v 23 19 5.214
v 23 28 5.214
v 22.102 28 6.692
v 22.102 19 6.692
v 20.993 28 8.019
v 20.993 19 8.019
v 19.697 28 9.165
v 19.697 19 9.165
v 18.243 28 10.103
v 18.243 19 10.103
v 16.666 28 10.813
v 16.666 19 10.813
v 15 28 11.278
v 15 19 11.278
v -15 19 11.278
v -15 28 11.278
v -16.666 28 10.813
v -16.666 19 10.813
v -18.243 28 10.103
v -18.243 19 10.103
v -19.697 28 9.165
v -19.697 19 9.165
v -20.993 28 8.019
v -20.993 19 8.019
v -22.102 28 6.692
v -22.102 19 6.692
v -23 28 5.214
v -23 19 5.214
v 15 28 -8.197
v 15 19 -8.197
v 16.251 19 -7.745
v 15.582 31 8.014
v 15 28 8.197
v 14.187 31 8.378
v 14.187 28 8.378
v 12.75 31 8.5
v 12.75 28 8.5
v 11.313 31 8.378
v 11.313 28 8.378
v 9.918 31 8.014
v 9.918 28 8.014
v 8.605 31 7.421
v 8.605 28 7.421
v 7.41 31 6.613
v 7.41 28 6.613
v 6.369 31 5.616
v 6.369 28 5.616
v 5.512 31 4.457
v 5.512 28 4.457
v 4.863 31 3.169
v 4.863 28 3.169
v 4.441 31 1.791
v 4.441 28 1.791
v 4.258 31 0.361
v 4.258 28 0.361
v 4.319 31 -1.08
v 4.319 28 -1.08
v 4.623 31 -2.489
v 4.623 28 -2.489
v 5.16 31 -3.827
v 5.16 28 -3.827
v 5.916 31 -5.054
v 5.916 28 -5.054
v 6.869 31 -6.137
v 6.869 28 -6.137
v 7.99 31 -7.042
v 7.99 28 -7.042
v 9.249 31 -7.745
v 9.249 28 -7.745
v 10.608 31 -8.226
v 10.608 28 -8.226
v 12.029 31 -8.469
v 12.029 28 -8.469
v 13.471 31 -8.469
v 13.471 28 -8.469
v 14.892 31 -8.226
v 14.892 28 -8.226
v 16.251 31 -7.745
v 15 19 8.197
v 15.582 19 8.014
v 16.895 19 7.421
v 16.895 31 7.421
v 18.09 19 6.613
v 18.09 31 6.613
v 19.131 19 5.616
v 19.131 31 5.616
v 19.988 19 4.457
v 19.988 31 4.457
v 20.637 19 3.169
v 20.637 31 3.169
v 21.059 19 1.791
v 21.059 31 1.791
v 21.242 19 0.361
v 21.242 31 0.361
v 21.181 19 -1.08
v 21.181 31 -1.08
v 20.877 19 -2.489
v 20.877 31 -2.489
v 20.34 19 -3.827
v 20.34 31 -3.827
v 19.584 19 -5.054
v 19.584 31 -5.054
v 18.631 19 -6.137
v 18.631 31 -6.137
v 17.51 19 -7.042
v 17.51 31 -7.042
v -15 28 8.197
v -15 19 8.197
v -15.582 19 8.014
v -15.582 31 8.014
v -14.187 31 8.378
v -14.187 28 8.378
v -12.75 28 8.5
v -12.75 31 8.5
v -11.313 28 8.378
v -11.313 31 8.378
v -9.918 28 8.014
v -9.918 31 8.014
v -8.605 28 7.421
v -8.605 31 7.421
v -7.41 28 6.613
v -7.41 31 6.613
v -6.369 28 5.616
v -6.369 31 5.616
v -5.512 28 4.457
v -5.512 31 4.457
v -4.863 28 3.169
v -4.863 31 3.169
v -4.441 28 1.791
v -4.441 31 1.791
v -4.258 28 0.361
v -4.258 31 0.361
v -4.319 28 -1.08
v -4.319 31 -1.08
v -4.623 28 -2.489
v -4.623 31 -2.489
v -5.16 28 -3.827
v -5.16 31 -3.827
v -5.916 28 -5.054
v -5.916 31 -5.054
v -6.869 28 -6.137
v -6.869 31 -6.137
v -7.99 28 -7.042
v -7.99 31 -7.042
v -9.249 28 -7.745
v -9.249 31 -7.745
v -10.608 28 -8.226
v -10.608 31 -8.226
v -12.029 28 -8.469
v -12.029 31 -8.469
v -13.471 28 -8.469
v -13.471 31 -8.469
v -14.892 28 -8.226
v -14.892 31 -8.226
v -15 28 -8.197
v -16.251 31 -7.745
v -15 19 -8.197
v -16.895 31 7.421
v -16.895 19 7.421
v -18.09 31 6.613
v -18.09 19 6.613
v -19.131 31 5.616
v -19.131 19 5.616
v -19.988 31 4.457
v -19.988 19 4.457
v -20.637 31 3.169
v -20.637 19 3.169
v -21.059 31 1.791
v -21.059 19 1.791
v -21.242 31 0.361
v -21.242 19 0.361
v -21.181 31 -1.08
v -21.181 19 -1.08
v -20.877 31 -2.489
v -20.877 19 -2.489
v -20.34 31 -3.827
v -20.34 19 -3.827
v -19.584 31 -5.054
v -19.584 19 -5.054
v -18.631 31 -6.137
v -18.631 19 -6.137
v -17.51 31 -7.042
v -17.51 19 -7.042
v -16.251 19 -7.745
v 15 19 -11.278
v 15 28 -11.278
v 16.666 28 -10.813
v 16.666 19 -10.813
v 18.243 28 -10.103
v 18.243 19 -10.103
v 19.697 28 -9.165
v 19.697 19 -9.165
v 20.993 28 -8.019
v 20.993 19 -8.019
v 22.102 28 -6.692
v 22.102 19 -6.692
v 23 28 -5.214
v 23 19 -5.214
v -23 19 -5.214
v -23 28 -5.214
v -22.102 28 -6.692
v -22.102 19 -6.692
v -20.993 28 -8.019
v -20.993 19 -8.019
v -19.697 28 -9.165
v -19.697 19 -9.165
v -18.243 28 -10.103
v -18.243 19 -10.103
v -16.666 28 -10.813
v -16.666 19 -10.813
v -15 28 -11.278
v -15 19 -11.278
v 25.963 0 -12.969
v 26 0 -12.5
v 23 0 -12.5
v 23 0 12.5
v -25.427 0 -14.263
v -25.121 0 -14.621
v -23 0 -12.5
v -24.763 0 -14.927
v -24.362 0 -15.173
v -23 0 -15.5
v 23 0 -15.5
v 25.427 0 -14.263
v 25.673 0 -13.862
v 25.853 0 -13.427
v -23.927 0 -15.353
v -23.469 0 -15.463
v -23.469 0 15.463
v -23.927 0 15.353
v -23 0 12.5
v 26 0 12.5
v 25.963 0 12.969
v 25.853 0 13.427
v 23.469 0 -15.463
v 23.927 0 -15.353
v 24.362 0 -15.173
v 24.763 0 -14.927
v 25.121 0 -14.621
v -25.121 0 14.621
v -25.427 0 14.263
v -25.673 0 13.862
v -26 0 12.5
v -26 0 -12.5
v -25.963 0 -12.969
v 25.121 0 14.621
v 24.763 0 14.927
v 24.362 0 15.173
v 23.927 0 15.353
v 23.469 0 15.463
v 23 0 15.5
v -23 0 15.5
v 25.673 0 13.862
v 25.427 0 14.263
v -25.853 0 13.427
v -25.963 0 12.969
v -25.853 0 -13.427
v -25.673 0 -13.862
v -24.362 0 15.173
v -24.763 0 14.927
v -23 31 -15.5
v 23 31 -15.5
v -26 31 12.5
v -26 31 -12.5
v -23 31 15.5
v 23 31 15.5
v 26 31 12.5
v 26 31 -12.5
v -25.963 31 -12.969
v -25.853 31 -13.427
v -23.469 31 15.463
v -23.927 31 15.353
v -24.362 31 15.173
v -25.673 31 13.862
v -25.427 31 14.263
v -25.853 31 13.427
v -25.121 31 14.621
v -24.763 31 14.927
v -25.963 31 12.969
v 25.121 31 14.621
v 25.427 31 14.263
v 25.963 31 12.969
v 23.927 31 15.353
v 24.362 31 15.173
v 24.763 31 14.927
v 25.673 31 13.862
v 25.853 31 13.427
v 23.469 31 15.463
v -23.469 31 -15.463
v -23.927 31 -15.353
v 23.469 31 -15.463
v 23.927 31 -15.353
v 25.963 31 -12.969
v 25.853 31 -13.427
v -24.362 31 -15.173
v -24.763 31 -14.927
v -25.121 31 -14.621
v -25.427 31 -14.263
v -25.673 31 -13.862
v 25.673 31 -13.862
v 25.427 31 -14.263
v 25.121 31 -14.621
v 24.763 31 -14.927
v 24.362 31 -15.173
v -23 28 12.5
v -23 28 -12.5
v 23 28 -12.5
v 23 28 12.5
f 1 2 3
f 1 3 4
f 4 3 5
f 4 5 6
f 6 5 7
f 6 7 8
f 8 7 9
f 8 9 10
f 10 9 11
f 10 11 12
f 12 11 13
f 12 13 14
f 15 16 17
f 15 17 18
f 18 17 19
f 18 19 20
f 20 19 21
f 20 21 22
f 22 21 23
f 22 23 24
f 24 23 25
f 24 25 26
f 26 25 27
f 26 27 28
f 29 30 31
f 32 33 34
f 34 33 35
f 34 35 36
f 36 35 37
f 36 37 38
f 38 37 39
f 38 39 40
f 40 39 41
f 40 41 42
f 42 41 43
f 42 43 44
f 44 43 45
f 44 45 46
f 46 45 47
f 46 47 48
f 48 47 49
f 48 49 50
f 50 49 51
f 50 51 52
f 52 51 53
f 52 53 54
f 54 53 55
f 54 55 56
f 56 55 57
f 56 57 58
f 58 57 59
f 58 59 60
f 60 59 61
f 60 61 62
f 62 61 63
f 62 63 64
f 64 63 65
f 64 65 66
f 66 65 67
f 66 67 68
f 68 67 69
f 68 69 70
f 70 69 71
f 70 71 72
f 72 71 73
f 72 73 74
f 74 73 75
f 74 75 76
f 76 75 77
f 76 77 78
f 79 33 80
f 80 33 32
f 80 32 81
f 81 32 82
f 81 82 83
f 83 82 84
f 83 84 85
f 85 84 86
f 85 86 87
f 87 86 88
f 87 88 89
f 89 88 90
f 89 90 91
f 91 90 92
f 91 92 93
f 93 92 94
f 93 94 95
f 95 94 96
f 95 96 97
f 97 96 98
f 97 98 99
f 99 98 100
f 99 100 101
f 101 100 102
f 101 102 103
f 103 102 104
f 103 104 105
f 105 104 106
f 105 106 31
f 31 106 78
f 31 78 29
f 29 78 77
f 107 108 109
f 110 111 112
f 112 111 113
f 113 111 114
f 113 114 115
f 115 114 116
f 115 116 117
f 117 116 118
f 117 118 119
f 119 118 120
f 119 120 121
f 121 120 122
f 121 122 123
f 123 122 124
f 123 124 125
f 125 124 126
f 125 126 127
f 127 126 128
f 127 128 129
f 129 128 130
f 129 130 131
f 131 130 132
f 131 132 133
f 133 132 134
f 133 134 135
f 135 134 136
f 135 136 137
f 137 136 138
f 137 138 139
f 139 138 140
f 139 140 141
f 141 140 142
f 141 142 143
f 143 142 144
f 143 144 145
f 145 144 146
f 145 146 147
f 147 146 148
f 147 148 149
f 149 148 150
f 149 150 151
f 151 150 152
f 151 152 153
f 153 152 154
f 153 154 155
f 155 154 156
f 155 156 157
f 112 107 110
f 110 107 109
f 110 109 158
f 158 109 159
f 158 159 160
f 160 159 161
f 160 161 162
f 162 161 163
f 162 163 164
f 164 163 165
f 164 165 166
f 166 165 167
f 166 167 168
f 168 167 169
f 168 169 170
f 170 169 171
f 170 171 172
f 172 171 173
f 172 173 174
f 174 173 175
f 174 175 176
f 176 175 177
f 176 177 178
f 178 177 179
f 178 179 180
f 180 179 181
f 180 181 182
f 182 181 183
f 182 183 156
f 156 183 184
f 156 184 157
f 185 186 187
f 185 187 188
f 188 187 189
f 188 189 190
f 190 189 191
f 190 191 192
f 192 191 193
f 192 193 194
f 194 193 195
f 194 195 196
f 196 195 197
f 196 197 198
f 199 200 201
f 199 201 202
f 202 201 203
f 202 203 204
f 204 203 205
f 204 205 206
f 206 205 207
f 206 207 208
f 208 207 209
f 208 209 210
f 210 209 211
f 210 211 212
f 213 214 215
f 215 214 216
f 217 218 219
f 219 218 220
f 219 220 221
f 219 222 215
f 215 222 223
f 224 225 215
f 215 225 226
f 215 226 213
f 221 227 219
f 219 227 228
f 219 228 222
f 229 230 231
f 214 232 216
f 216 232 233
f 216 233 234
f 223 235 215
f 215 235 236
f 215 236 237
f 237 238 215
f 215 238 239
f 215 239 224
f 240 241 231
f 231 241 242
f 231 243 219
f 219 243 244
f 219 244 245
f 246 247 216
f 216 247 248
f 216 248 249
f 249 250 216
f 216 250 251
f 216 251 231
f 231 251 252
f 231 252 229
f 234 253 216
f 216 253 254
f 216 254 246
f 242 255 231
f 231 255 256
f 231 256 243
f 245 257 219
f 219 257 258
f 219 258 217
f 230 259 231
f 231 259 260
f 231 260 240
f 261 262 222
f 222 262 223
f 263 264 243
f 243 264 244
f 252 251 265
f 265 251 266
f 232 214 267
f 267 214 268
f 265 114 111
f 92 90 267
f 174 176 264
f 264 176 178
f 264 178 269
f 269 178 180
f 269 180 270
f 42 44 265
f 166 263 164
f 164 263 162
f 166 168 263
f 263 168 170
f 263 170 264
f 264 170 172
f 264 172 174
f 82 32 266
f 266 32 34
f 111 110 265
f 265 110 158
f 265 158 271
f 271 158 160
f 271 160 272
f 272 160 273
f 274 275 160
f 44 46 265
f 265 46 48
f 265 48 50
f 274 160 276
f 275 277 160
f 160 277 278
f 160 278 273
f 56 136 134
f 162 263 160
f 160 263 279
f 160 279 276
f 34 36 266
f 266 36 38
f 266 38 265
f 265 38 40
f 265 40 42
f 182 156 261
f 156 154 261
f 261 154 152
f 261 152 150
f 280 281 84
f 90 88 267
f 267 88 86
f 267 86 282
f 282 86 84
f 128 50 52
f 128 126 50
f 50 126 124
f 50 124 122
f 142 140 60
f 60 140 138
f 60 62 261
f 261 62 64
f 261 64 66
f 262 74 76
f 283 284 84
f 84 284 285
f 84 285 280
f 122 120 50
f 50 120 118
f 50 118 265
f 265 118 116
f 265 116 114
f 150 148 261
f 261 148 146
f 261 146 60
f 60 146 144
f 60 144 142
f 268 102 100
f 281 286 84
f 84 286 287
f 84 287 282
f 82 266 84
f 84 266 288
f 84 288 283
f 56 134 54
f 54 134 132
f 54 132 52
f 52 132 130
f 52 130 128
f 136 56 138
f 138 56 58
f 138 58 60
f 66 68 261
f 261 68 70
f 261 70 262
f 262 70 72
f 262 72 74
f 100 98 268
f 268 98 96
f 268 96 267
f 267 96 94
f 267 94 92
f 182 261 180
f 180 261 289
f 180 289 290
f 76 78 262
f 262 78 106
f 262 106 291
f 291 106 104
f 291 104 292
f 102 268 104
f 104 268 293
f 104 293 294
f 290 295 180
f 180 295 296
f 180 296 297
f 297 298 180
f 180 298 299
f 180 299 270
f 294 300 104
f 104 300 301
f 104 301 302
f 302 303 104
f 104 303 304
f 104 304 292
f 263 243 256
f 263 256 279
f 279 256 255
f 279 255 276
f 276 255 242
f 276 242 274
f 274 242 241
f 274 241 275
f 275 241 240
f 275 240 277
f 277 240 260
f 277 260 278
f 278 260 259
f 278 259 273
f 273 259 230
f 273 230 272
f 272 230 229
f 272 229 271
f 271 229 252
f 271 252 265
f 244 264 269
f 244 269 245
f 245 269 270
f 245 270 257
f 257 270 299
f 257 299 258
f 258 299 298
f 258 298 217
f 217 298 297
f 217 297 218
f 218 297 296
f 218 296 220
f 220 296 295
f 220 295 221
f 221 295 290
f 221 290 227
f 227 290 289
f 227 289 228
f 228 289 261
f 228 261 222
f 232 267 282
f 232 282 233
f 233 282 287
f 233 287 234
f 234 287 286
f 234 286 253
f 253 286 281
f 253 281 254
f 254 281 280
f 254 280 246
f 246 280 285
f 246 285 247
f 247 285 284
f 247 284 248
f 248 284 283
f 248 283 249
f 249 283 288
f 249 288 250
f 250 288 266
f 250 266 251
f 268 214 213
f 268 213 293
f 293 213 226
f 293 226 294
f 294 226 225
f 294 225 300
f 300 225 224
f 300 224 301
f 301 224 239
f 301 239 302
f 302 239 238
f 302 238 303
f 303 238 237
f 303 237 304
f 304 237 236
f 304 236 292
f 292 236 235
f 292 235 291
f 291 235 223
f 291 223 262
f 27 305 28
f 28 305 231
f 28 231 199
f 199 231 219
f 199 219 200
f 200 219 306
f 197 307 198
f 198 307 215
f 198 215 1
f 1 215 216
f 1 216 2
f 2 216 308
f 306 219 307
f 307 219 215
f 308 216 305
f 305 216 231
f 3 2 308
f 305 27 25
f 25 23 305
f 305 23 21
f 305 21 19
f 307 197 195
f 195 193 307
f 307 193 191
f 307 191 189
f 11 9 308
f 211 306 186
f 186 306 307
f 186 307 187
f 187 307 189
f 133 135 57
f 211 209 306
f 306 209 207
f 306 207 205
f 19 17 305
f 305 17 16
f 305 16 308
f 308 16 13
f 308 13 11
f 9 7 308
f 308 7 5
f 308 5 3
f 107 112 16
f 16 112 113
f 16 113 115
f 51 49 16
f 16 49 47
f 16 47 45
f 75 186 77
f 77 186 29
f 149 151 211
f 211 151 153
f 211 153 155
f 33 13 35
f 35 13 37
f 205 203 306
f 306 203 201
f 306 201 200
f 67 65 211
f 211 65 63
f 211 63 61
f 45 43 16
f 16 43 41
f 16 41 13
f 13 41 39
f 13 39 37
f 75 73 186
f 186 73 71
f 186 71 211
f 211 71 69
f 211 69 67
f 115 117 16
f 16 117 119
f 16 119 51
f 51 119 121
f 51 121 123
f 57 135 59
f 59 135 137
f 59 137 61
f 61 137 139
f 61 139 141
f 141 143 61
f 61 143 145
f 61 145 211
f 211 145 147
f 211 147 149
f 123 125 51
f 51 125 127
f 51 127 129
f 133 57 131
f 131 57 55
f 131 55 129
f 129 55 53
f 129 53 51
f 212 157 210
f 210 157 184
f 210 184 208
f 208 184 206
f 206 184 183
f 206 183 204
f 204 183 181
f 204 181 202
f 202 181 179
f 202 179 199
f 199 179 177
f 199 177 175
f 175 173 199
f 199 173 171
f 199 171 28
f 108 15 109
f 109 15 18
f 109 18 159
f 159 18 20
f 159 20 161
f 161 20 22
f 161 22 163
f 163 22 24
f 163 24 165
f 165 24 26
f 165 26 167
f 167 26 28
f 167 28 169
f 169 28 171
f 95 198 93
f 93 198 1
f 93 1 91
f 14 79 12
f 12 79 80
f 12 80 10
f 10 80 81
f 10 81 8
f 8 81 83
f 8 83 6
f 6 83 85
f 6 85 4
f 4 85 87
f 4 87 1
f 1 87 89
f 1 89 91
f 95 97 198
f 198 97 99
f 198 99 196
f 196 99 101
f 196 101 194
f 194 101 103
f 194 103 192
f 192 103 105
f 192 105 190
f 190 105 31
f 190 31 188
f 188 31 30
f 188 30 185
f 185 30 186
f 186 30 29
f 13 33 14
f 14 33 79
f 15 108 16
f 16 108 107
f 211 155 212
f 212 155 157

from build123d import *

# Parameters (mm, degrees)
CROQUIS1_W              = 52
CROQUIS1_H              = 31
CROQUIS1_W_2            = 46
CROQUIS1_H_2            = 25
SALIENTE_EXTRUIR1_DEPTH = 31
CROQUIS2_R              = 8.5
CORTAR_EXTRUIR1_DEPTH   = 31
REDONDEO1_R             = 3
VACIADO1_DEPTH          = 28
CROQUIS3_W              = 46
CROQUIS3_H              = 25
CORTAR_EXTRUIR2_DEPTH   = 19
CROQUIS4_W              = 30
CROQUIS4_H              = 23
CORTAR_EXTRUIR3_DEPTH   = 9


# Read off the part's stored shape, not the designer's step: Vaciado1
with BuildPart() as part:
    # Croquis1 → Saliente-Extruir1 (new body)
    # profile 1 of 2: a face of its own
    with BuildSketch(Plane(origin=(0, 0, 0), x_dir=(1, 0, 0), z_dir=(0, 1, 0))):
        Rectangle(CROQUIS1_W, CROQUIS1_H)
        Rectangle(CROQUIS1_W_2, CROQUIS1_H_2, mode=Mode.SUBTRACT)
    # profile 2 of 2: a face of its own
    with BuildSketch(Plane(origin=(0, 0, 0), x_dir=(1, 0, 0), z_dir=(0, 1, 0))):
        Rectangle(CROQUIS1_W_2, CROQUIS1_H_2)
    extrude(amount=SALIENTE_EXTRUIR1_DEPTH)

    # Croquis2 → Cortar-Extruir1 (cut)
    with BuildSketch(Plane(origin=(0, 31, 0), x_dir=(1, 0, 0), z_dir=(0, 1, 0))):
        with Locations(Location((-12.75, 0, 0), (0, 0, 270))):
            Circle(CROQUIS2_R)
        with Locations(Location((12.75, 0, 0), (0, 0, 270))):
            Circle(CROQUIS2_R)
    extrude(amount=-CORTAR_EXTRUIR1_DEPTH, mode=Mode.SUBTRACT)

    # Redondeo1
    redondeo1_edges = [part.edges().sort_by_distance(p)[0] for p in [
        (26, 15.5, 15.5),
        (-26, 15.5, 15.5),
        (-26, 15.5, -15.5),
        (26, 15.5, -15.5),
    ]]
    fillet(redondeo1_edges, radius=REDONDEO1_R)

    # Vaciado1 outline → Vaciado1 (cut)
    with BuildSketch(Plane(origin=(0, 0, 0), x_dir=(1, 0, 0), z_dir=(0, 1, 0))):
        with BuildLine():
            Line((-23, 12.5), (-23, 5.214163404))
            ThreePointArc((-23, 5.214163404), (-1.25, 0), (-23, -5.214163404))
            Line((-23, -5.214163404), (-23, -12.5))
            Line((-23, -12.5), (23, -12.5))
            Line((23, -12.5), (23, -5.214163404))
            ThreePointArc((23, -5.214163404), (1.25, 0), (23, 5.214163404))
            Line((23, 5.214163404), (23, 12.5))
            Line((23, 12.5), (-23, 12.5))
        make_face()
    extrude(amount=VACIADO1_DEPTH, mode=Mode.SUBTRACT)

    # Croquis3 → Cortar-Extruir2 (cut)
    with BuildSketch(Plane.XZ):
        Rectangle(CROQUIS3_W, CROQUIS3_H)
    extrude(amount=-CORTAR_EXTRUIR2_DEPTH, mode=Mode.SUBTRACT)

    # Croquis4 → Cortar-Extruir3 (cut)
    with BuildSketch(Plane.XZ.offset(-19)):
        Rectangle(CROQUIS4_W, CROQUIS4_H)
    extrude(amount=-CORTAR_EXTRUIR3_DEPTH, mode=Mode.SUBTRACT)


solid = part.part
